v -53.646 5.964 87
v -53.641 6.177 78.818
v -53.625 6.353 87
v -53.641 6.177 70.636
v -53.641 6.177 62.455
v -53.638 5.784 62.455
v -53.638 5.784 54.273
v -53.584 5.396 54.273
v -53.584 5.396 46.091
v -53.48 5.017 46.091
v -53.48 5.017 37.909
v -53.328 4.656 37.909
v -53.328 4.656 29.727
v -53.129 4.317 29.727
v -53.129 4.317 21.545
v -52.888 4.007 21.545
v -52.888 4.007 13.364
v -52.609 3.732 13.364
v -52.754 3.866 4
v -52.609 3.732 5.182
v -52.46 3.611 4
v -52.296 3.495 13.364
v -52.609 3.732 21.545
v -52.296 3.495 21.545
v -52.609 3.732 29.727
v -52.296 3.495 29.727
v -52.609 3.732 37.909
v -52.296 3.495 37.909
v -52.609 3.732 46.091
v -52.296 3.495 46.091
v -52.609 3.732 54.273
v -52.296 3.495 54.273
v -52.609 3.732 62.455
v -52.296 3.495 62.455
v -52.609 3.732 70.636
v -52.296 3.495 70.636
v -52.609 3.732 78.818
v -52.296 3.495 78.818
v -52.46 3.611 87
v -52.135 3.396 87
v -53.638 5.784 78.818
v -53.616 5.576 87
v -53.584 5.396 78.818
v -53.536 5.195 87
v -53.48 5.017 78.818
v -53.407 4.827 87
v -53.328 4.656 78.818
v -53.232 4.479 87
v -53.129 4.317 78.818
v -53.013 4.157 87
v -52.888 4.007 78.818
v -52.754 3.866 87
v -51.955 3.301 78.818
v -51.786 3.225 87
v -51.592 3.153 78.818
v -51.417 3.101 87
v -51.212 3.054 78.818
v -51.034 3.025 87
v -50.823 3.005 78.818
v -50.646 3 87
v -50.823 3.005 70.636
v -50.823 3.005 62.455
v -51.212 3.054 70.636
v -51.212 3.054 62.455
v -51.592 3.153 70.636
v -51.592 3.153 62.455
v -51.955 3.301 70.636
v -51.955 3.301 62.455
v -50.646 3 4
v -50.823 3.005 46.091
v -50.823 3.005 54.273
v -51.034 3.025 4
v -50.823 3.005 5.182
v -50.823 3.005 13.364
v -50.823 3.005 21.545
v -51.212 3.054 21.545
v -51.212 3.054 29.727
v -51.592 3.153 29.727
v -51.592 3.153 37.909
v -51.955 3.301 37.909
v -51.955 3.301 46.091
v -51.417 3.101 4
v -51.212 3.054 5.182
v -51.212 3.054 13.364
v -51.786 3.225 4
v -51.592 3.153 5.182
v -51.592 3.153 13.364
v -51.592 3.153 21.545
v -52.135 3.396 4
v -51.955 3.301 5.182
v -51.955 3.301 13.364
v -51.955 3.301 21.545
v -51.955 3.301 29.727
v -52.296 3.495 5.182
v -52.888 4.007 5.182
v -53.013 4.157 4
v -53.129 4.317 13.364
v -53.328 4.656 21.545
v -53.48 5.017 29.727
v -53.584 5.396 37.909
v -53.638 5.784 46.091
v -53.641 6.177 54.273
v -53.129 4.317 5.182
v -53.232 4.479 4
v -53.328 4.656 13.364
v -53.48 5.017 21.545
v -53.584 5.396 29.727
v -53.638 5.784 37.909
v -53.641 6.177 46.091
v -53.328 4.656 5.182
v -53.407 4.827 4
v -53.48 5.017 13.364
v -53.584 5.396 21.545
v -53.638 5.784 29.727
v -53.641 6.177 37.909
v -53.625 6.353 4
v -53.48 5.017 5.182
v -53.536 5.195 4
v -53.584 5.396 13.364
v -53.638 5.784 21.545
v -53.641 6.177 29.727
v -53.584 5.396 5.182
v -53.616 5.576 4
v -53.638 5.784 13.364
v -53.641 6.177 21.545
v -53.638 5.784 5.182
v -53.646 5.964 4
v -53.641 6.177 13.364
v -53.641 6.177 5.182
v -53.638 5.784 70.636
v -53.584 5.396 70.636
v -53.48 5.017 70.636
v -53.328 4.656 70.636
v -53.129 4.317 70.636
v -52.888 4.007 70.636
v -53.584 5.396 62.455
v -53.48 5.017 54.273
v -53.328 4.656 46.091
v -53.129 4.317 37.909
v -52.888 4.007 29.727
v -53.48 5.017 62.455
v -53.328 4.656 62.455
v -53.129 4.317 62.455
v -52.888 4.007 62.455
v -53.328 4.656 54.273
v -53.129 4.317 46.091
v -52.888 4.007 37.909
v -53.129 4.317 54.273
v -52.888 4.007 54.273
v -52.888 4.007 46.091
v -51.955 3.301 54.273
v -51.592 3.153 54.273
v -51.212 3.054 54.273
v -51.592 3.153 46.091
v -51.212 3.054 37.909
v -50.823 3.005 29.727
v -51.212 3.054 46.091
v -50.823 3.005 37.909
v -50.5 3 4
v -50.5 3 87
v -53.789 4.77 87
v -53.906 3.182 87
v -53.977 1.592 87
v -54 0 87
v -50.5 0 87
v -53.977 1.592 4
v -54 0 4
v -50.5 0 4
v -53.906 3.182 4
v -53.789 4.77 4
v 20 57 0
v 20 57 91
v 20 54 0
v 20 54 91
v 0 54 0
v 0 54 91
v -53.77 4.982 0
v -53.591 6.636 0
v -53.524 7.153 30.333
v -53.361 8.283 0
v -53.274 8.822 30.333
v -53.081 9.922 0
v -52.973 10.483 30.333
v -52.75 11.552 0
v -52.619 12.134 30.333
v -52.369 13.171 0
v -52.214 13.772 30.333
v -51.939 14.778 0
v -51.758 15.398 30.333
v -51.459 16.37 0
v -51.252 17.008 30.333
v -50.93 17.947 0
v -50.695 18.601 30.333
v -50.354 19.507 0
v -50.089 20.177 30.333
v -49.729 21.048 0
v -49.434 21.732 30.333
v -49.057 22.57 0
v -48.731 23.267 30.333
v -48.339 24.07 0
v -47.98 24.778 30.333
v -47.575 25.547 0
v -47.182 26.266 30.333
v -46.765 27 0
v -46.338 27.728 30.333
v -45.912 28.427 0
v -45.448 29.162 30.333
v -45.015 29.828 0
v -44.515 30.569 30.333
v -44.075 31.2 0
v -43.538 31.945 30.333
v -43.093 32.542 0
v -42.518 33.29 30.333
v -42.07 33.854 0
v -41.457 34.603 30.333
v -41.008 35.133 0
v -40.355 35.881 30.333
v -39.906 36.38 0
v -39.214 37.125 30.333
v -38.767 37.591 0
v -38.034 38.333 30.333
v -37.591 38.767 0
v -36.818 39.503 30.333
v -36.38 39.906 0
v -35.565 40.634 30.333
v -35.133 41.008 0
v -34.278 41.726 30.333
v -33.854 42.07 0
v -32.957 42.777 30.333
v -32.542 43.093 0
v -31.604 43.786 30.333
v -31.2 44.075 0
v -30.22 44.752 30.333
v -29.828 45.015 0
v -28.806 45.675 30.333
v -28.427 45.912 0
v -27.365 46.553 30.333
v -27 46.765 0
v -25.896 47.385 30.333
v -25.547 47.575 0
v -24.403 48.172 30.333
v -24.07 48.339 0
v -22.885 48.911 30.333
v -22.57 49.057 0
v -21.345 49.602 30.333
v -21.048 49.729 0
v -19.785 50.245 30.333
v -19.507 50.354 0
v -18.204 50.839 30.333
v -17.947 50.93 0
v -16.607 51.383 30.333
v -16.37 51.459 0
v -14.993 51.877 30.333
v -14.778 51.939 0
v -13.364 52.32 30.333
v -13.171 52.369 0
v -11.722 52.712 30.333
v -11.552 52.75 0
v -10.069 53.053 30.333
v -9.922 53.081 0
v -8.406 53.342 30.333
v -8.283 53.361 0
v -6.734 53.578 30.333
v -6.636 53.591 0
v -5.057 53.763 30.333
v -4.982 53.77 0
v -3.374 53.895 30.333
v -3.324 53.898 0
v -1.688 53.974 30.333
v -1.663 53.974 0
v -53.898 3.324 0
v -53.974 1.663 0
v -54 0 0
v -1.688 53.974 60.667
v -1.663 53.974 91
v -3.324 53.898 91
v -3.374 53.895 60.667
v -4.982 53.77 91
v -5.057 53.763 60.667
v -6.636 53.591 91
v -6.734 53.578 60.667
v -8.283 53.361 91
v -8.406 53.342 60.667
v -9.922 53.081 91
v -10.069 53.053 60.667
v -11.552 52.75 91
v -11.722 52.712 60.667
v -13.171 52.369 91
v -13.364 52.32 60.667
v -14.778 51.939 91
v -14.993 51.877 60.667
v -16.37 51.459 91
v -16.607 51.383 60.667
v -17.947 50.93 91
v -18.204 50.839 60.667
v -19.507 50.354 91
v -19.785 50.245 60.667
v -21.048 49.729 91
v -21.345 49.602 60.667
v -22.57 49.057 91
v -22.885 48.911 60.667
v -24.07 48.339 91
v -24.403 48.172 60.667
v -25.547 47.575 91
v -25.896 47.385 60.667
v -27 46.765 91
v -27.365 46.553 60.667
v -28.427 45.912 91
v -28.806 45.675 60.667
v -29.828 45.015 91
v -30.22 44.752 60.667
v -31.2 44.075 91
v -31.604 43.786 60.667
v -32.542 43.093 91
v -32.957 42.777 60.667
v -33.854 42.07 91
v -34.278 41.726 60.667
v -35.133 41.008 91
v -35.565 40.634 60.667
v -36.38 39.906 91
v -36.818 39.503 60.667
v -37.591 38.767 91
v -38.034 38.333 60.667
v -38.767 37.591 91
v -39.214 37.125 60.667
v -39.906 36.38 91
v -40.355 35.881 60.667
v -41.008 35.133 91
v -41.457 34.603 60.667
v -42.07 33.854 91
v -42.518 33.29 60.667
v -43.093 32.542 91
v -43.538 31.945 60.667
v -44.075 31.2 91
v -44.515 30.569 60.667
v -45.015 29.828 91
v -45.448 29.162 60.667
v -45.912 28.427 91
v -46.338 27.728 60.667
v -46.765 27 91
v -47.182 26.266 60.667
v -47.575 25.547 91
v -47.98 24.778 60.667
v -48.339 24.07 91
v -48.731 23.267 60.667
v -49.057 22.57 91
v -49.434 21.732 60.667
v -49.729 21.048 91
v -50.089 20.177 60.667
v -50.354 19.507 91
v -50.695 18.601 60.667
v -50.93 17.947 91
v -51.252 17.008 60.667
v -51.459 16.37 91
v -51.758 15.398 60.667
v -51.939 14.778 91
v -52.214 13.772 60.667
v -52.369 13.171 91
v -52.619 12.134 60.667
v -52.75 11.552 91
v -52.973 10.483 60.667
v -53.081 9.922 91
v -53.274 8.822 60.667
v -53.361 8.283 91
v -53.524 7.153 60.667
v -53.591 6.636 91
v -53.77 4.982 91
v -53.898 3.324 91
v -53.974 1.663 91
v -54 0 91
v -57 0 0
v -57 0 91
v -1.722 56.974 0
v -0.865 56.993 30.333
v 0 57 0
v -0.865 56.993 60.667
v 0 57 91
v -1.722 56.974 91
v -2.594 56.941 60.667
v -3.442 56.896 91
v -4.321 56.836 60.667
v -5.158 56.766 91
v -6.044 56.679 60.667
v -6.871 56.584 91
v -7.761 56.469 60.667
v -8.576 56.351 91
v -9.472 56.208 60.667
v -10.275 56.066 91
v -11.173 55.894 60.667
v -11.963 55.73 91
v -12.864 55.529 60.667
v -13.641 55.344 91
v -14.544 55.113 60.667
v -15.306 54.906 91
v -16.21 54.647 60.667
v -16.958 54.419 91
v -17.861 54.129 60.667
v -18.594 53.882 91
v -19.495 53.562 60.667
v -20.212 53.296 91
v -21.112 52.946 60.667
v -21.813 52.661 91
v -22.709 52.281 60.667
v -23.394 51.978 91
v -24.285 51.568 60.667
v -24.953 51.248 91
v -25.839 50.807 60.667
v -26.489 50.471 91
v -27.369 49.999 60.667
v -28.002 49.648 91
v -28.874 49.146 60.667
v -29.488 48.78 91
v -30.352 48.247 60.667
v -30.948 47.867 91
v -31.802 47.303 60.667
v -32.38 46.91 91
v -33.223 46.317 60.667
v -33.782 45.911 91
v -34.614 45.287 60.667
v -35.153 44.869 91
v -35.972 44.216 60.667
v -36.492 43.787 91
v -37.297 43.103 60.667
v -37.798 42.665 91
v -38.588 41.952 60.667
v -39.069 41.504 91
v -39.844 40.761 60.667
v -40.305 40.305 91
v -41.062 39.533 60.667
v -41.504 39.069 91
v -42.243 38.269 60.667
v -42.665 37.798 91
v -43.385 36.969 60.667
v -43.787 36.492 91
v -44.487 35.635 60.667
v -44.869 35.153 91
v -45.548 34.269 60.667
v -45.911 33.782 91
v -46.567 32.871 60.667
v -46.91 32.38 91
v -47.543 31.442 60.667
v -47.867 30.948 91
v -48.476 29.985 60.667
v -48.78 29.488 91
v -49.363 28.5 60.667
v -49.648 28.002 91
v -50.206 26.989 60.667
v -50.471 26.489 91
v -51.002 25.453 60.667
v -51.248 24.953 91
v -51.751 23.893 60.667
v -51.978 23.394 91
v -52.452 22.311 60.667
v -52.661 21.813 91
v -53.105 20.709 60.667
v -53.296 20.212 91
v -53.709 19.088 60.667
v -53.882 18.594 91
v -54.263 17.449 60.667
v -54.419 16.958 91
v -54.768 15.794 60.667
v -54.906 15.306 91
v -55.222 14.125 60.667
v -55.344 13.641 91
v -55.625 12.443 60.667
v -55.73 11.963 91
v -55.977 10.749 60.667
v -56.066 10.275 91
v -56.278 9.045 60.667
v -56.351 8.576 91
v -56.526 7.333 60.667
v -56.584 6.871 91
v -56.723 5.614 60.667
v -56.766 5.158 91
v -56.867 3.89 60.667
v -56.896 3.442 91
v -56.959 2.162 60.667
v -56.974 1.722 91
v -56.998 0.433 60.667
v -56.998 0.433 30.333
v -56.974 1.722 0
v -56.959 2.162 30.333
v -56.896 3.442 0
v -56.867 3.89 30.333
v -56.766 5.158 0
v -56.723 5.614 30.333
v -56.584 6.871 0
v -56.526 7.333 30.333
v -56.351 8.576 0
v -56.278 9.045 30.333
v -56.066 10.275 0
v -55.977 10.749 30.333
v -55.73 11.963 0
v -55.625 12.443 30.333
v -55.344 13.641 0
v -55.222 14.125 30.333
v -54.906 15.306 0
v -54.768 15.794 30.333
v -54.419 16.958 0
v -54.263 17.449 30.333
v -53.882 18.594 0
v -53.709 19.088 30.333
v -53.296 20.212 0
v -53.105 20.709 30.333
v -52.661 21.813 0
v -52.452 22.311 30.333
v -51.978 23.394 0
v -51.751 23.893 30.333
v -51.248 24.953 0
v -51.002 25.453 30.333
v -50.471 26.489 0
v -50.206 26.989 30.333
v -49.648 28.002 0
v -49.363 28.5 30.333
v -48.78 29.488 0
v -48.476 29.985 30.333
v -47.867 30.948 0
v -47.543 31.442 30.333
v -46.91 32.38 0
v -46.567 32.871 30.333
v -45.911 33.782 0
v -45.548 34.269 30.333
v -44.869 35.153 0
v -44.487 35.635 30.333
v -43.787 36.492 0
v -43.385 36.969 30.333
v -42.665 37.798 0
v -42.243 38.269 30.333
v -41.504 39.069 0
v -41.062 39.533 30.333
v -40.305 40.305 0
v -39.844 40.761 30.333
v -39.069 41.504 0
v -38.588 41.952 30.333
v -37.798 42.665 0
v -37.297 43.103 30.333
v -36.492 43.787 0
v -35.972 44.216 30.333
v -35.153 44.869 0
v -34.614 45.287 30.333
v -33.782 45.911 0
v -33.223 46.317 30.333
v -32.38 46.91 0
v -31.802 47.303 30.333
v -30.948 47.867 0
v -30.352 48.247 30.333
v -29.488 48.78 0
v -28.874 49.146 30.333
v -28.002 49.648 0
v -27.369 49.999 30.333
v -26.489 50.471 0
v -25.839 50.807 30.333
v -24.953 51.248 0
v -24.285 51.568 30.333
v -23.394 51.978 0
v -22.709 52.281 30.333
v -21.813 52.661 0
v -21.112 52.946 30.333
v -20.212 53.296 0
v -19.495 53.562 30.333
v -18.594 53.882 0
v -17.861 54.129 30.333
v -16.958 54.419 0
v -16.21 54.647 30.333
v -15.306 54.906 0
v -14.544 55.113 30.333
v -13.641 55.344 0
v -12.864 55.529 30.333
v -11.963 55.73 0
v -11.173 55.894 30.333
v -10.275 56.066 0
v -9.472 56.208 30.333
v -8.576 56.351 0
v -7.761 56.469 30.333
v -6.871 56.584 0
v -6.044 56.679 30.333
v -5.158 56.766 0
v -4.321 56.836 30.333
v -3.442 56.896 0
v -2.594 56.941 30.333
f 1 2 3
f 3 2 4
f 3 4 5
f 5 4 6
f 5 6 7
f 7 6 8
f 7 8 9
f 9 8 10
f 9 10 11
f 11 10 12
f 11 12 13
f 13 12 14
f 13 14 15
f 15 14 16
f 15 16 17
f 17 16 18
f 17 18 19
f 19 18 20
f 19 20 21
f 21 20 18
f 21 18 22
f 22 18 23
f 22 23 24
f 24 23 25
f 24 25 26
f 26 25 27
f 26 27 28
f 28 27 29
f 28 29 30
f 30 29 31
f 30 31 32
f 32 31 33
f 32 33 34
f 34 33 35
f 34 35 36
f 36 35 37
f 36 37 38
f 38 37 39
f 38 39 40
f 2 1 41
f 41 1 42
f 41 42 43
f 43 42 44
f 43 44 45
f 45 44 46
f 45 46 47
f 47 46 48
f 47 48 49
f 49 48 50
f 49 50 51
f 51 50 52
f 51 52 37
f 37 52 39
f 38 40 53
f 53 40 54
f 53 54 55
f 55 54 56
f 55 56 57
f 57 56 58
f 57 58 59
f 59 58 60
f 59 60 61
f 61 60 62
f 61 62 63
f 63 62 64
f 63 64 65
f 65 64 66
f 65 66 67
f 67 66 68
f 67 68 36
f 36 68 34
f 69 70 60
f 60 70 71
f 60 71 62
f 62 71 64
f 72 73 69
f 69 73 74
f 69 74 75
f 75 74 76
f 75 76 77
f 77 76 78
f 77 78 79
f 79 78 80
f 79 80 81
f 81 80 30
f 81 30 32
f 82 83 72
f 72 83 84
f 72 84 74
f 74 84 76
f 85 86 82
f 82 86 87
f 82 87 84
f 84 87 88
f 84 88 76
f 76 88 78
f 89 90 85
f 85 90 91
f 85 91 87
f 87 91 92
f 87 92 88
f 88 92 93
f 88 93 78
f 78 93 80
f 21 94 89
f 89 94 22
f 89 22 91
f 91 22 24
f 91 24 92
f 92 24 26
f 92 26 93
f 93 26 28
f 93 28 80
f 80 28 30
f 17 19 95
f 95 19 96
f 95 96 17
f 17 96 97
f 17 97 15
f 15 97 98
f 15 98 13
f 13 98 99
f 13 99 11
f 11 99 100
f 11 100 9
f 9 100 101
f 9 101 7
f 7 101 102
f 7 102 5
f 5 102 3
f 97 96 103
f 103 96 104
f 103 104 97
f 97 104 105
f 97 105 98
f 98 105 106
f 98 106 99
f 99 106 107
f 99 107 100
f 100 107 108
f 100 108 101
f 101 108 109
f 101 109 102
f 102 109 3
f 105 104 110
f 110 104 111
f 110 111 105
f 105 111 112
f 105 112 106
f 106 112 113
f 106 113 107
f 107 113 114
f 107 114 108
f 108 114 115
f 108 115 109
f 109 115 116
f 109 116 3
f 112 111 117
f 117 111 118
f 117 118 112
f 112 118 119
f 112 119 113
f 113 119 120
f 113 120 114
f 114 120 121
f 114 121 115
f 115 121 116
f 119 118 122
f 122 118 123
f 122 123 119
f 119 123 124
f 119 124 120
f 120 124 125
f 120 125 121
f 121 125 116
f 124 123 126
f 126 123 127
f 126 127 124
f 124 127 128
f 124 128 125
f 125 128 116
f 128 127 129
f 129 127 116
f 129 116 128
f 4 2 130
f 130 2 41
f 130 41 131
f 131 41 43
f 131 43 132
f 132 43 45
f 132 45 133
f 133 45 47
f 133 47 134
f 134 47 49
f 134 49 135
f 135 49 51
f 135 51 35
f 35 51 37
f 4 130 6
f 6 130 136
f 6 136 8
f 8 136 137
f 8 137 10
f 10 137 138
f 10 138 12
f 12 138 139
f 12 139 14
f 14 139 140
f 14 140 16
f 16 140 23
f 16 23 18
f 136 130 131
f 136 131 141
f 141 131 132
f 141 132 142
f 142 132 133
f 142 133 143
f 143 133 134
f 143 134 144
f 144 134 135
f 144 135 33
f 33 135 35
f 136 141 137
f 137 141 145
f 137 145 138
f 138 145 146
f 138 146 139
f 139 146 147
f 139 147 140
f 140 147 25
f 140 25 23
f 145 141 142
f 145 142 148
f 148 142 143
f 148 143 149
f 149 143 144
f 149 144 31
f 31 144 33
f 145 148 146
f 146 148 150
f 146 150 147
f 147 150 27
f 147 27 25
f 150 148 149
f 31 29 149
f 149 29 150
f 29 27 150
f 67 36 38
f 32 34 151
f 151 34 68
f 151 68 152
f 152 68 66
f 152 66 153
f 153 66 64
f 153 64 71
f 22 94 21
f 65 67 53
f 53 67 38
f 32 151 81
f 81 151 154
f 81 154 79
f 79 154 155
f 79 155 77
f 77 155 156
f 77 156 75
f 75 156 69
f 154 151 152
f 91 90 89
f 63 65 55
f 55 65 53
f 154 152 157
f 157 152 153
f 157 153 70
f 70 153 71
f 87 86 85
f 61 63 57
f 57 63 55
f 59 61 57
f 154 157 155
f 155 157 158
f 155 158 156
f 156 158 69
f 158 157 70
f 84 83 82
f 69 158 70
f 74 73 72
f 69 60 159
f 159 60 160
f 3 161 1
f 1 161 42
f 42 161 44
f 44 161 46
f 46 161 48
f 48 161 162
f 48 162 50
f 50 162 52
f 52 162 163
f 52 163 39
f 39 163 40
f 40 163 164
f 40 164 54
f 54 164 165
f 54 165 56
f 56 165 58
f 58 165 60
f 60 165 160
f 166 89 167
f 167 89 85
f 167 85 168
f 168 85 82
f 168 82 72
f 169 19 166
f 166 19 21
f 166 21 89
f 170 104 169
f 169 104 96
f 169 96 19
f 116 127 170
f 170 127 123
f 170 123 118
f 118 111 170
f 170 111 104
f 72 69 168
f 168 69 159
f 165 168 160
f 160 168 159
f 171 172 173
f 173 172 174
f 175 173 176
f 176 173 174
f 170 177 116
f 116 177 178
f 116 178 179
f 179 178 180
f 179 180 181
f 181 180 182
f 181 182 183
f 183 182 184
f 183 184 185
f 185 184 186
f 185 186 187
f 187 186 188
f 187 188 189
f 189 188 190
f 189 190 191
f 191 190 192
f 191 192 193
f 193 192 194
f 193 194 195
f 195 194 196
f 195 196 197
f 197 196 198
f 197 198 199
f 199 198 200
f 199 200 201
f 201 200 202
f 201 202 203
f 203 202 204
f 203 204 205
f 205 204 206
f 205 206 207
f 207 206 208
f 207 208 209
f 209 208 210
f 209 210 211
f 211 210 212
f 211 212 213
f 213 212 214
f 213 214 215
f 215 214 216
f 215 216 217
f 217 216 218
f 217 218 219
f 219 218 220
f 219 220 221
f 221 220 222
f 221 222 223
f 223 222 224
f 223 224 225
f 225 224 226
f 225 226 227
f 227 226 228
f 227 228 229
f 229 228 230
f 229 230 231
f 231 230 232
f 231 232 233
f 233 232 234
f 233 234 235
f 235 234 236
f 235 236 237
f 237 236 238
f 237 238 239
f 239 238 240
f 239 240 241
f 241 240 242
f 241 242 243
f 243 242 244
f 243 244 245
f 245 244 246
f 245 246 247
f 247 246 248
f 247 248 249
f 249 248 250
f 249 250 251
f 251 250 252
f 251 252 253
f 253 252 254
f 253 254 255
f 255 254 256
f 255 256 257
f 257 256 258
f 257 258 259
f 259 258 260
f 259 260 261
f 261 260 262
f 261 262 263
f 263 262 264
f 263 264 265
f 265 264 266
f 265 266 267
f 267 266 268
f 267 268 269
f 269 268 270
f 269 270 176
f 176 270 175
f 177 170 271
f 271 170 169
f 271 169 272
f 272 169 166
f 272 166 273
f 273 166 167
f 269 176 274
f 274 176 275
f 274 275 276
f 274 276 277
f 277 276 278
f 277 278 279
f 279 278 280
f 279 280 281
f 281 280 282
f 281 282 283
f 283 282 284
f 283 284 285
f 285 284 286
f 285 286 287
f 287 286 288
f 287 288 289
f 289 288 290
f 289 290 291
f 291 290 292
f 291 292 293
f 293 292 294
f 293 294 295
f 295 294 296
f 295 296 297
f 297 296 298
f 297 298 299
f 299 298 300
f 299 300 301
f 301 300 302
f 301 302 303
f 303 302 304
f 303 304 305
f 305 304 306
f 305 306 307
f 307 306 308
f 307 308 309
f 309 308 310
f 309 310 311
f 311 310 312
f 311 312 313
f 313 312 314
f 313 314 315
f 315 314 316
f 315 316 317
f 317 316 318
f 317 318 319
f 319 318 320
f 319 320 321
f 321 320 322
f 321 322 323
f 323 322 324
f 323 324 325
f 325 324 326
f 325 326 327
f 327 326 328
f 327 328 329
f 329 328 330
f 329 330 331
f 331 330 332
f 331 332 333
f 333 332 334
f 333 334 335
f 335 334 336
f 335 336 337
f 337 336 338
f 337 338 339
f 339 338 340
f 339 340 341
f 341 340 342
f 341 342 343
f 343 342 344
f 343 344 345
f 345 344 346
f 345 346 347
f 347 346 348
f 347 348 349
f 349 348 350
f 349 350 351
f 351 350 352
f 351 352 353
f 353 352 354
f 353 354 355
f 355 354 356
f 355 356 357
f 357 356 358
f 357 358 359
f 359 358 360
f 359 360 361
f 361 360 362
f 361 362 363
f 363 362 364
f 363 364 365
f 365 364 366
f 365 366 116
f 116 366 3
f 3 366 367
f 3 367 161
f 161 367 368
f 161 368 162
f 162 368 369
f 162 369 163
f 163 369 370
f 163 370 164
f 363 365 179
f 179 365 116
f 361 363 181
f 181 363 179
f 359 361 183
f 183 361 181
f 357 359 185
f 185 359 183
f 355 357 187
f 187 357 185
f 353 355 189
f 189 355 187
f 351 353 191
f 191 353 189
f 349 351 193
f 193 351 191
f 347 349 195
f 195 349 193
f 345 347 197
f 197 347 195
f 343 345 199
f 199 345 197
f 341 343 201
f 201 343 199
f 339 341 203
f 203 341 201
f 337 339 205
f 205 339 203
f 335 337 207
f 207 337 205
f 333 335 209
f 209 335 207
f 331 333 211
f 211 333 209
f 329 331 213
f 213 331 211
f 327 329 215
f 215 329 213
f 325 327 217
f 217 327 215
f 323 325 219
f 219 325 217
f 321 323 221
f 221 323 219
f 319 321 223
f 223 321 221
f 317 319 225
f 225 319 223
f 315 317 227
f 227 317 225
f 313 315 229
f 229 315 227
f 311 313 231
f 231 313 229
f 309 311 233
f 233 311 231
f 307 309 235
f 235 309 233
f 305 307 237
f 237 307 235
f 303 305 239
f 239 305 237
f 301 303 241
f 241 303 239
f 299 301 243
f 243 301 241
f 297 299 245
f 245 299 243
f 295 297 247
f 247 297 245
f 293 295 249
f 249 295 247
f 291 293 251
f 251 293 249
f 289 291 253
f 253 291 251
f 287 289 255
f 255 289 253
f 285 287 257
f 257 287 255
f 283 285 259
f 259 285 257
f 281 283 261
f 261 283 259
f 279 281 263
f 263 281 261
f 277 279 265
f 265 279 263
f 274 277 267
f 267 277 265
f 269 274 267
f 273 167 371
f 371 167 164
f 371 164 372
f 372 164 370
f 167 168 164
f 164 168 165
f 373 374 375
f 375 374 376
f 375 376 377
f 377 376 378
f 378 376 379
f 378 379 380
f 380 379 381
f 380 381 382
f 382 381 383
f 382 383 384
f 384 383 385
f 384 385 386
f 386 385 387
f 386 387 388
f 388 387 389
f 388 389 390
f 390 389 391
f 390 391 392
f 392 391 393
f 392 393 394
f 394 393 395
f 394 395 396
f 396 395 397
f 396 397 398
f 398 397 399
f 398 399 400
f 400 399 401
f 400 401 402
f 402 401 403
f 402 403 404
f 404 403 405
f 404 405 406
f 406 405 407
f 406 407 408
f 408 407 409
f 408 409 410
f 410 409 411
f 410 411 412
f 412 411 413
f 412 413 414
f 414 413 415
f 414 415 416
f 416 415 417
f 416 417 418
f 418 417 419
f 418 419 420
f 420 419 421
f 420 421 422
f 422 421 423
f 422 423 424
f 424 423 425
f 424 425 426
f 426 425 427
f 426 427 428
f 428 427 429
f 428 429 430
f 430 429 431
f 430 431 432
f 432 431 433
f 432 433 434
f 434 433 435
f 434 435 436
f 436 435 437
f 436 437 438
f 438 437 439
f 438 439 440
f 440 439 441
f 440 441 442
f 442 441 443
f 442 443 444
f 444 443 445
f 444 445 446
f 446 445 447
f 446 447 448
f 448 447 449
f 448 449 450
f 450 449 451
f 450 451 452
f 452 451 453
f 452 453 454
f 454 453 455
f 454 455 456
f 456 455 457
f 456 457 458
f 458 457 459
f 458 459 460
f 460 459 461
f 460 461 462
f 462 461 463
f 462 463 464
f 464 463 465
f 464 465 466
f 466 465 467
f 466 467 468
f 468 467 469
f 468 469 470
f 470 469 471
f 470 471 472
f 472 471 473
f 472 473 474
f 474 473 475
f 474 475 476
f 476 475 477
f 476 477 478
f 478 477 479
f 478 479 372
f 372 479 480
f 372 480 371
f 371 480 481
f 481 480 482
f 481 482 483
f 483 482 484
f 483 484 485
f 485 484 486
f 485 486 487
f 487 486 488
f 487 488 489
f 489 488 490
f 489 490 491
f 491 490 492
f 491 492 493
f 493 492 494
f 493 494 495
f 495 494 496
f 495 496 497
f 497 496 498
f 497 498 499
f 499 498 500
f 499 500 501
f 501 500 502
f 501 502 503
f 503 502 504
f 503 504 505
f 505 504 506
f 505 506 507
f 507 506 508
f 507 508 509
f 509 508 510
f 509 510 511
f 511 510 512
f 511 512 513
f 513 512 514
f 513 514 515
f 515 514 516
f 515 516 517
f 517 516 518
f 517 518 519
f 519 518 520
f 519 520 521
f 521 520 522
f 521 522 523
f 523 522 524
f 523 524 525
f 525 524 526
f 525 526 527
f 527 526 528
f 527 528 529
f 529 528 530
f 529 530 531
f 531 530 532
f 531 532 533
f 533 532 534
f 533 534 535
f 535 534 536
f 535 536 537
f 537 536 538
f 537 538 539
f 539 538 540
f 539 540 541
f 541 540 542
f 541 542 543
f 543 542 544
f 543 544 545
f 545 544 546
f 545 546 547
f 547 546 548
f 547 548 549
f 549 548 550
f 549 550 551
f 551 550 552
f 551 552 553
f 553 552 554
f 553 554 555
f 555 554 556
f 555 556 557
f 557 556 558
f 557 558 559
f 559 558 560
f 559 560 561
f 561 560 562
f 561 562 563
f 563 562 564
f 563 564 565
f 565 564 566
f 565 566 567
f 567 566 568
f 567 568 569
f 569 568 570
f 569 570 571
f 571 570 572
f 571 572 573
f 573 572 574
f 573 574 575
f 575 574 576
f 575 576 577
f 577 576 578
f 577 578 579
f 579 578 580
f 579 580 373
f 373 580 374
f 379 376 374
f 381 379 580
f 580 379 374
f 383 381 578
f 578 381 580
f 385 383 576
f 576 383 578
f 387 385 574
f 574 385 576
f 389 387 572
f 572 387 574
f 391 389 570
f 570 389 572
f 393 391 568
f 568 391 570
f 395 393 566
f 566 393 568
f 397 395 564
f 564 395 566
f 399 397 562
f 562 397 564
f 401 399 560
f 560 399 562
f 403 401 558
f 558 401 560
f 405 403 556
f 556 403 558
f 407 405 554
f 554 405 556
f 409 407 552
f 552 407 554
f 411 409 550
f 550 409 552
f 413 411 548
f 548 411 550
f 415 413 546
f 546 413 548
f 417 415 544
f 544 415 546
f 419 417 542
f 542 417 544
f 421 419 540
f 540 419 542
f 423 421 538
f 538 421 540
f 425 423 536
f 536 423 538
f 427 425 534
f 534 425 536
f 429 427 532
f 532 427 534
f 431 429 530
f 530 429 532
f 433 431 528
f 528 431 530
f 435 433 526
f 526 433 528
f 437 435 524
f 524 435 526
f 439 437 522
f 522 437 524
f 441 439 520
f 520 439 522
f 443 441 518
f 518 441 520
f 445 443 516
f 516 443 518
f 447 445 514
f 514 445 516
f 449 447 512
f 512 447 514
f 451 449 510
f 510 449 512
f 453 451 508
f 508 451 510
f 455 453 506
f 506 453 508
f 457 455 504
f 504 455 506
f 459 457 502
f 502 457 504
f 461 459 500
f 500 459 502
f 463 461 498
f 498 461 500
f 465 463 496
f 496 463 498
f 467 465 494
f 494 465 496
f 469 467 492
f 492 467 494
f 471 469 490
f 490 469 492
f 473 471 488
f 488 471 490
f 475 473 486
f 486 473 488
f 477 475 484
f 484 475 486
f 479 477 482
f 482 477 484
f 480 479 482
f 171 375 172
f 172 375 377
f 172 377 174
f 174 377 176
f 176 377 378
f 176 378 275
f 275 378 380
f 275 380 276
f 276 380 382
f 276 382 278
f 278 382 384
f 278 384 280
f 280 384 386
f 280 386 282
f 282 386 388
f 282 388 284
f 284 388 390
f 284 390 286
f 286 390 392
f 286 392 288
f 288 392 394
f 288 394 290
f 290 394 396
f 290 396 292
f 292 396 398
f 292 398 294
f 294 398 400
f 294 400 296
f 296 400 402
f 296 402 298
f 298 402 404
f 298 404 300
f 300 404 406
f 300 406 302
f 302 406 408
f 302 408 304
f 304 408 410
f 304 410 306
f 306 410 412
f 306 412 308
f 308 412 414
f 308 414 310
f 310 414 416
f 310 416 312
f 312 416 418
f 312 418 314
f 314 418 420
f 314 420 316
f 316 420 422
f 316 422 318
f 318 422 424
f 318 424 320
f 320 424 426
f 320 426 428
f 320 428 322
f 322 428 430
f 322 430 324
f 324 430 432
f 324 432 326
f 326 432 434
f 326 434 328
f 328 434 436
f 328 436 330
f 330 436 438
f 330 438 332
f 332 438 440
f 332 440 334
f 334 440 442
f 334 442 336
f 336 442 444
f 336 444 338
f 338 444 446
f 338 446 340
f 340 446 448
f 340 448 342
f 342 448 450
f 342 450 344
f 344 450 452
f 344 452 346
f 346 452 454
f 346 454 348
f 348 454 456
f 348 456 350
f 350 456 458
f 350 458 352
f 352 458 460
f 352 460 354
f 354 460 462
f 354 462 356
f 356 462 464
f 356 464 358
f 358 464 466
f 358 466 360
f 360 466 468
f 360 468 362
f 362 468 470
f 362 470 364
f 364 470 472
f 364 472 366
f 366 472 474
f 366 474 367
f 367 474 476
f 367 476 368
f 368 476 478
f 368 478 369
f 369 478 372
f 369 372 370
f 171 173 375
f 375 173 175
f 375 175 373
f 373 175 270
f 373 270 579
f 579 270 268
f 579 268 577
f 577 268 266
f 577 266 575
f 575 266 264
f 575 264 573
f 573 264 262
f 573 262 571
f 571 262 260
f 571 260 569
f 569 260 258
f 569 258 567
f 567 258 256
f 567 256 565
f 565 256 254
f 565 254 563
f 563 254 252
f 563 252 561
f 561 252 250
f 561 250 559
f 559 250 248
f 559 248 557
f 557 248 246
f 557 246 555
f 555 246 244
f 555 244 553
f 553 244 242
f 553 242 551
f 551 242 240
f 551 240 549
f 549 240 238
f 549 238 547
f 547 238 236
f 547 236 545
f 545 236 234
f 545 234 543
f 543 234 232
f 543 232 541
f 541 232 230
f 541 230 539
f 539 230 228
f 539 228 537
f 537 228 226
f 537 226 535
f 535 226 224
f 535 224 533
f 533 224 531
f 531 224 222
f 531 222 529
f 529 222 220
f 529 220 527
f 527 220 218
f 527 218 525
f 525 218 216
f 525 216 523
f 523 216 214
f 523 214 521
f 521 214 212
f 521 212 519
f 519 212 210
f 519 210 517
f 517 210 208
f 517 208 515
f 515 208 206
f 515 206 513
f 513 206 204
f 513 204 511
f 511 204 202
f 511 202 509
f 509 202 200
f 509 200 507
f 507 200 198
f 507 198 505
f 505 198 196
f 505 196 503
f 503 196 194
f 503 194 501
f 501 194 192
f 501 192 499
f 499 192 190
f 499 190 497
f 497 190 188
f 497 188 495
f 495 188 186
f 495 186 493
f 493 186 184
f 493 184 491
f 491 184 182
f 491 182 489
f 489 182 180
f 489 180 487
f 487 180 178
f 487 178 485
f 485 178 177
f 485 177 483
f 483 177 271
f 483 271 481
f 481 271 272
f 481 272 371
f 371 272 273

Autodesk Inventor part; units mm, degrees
ref_plane "YZ Plane" through (0, 0, 0) normal (1, 0, 0) x (0, 1, 0)
ref_plane "XZ Plane" through (0, 0, 0) normal (0, 1, 0) x (-1, 0, 0)
ref_plane "XY Plane" through (0, 0, 0) normal (0, 0, 1) x (1, 0, 0)
sketch "Sketch1" plane through (0, 0, 0) normal (0, 0, 1) x (1, 0, 0)
  arc A0 (0, 54) -> (-54, 0) centre (0, 0) ccw
  arc A1 (0, 57) -> (-57, 0) centre (0, 0) ccw
  line L0 (0, 57) -> (20, 57)
  line L1 (0, 57) -> (20, 57) construction
  line L2 (0, 54) -> (20, 54)
  line L3 (0, 54) -> (20, 54) construction
  line L4 (20, 54) -> (20, 57)
  line L5 (-57, 0) -> (-54, 0)
  dimension "d0" = 108
  dimension "d1" = 114
  dimension "d2" = 20
  dimension "d3" = 0
  dimension "d4" = 20
  dimension "d5" = 0
extrude "Extrusion1" add sketch "Sketch1" along normal blind 91
sketch "Sketch2" plane through (-57, 0, 0) normal (0, -1, 0) x (1, 0, 0)
  line L0 (3, 0) -> (3, 91) projected
  line L1 (3, 87) -> (6.5, 87)
  line L2 (6.5, 87) -> (6.5, 4)
  line L3 (6.5, 4) -> (3, 4)
  line L4 (3, 4) -> (3, 87)
  line L5 (0, 0) -> (3, 0) projected
  point P0 (57, 0)
  point P1 (3, 4)
  dimension "d8" = 3.5
  dimension "d9" = 83
  dimension "d10" = 4
extrude "Extrusion2" add sketch "Sketch2" against normal blind 3
fillet "Fillet1" radius 3 1 edges at (-53.9166, 3, 45.5)
properties part number "obudowa przekładni 2"
